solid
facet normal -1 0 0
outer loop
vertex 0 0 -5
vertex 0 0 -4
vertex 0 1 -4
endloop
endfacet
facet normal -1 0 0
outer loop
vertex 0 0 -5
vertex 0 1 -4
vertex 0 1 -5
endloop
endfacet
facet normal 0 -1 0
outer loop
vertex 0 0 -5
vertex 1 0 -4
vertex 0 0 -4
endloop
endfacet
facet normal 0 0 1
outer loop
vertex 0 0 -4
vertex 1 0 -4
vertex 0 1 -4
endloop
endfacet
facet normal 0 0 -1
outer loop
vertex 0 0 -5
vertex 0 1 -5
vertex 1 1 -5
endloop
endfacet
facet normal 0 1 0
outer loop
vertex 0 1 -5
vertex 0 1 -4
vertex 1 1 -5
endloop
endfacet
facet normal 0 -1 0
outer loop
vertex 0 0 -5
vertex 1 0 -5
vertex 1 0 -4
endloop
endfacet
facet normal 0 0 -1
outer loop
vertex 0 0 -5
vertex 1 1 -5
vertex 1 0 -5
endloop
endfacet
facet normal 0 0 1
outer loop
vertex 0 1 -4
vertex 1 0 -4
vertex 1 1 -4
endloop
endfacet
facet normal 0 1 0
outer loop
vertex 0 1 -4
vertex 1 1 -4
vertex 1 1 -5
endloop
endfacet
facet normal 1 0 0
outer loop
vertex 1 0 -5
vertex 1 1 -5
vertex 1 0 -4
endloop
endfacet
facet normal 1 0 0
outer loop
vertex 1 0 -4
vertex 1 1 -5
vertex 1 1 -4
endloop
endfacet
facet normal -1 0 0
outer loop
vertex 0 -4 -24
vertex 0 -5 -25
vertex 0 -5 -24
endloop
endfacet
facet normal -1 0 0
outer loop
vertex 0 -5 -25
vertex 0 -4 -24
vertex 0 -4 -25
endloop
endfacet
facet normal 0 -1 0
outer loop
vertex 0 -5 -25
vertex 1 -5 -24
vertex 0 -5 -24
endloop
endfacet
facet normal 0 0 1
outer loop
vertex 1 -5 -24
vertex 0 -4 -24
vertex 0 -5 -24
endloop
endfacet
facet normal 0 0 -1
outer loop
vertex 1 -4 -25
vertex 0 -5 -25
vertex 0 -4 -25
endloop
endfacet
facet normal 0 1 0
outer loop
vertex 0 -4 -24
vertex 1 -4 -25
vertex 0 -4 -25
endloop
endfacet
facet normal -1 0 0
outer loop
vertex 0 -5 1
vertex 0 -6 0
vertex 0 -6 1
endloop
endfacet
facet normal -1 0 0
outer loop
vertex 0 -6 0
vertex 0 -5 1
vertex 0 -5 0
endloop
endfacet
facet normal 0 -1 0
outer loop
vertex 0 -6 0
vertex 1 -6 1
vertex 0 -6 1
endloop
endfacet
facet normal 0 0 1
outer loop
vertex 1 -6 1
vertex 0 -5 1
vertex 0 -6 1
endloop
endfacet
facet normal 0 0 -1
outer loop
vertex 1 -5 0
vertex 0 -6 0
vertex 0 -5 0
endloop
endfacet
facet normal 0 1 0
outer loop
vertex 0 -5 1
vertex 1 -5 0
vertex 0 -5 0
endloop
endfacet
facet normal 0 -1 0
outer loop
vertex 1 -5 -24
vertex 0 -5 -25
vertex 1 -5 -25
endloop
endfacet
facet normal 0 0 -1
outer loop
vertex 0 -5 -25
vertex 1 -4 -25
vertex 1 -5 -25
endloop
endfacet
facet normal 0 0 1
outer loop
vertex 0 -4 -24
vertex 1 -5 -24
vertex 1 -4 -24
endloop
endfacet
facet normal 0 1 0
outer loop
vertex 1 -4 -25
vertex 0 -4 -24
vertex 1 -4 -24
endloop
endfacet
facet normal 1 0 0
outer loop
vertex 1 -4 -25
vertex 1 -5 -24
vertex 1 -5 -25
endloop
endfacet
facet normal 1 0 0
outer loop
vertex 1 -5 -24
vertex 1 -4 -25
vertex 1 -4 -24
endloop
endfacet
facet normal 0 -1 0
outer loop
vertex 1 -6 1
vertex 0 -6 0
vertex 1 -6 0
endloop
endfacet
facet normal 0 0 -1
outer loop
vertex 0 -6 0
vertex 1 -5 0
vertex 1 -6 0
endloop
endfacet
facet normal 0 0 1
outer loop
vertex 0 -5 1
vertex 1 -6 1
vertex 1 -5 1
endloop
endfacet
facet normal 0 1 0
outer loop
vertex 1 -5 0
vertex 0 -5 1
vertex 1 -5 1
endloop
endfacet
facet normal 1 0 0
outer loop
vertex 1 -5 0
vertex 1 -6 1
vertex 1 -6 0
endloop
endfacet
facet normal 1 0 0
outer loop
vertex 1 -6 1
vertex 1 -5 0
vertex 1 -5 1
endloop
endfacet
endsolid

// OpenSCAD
// Sharp GP2Y0D413K0F Distance Sensor Housing Model
// Coordinate System: Origin at the center of the main body. Z-axis depth, X-axis length, Y-axis height/width.
// PWB side is facing -Z direction.

// --- Global Parameters ---
unit = [1, 1, 1]; // Units are mm

// --- Constants derived from datasheet dimensions (approximations) ---
// Overall Length (X max): ~32 mm
// Overall Width (Y max): ~18 mm
// Overall Depth (Z total): The sensor housing spans about 18-20mm depth.

module main_housing() {
    difference() {
        // 1. Base Block (The overall plastic shell)
        // We define a slightly oversized block to accommodate all components.
        translate([0, 0, -5]) // Shift Z slightly so the origin is roughly centered within the depth
        cube([32 * unit, 18 * unit, 40 * unit]); // Large box: X=32, Y=18 (W), Z=40 (Depth)

        // 2. Internal Cutouts and Shaping

        // A. Main Sensor Body Core Shape
        // This defines the main volume that is shaped differently from a simple box.
        translate([0, -7.5, -15]) // Start position for the main body structure
        cube([30 * unit, 14 * unit, 28 * unit]);

        // B. Connector/PWB End Recess (Towards -Z)
        // This area needs to be slightly recessed or shaped for the PCB connection.
        translate([0, 0, -35]) // Far end of the sensor block
        cube([15 * unit, 8 * unit, 5 * unit]);


        // C. Sensor Window/Air Passage Cutout (Front face)
        // The primary sensing window cutout area.
        translate([0, 0, -32]) // Near the front-most point of the sensor block
        cube([25 * unit, 10 * unit, 3 * unit]);

    }
}


module details() {
    // This module handles smaller protrusions or defining internal structures.

    // D. LED Emitter Section (The visible part on the front)
    translate([0, -4, -25]) // Positioned near the sensor window area
    rotate([90, 0, 0]) {
        // Simple representation of the emitter assembly box
        cube([8 * unit, 16 * unit, 3 * unit]);
    }

     // E. Top/Bottom Mounting Slots (General shape approximation)
    translate([0, -5, 0])
    rotate([90, 0, 0]) {
        // A small rectangular feature for mounting or alignment pins on the top surface
        cube([30 * unit, 1 * unit, 2 * unit]);
    }

    // Note: Given that the datasheet only provides 2D projections (top and side views) 
    // and not a detailed cross-sectional model of every curve, this structure 
    // captures the primary bounding box and major cutouts.
}


// Final Assembly
color([0.7, 0.7, 0.7]) { // Light gray plastic representation
    main_housing();
}

color([0.2, 0.2, 0.2]) { // Darker color for detail/internal components
    details();
}
